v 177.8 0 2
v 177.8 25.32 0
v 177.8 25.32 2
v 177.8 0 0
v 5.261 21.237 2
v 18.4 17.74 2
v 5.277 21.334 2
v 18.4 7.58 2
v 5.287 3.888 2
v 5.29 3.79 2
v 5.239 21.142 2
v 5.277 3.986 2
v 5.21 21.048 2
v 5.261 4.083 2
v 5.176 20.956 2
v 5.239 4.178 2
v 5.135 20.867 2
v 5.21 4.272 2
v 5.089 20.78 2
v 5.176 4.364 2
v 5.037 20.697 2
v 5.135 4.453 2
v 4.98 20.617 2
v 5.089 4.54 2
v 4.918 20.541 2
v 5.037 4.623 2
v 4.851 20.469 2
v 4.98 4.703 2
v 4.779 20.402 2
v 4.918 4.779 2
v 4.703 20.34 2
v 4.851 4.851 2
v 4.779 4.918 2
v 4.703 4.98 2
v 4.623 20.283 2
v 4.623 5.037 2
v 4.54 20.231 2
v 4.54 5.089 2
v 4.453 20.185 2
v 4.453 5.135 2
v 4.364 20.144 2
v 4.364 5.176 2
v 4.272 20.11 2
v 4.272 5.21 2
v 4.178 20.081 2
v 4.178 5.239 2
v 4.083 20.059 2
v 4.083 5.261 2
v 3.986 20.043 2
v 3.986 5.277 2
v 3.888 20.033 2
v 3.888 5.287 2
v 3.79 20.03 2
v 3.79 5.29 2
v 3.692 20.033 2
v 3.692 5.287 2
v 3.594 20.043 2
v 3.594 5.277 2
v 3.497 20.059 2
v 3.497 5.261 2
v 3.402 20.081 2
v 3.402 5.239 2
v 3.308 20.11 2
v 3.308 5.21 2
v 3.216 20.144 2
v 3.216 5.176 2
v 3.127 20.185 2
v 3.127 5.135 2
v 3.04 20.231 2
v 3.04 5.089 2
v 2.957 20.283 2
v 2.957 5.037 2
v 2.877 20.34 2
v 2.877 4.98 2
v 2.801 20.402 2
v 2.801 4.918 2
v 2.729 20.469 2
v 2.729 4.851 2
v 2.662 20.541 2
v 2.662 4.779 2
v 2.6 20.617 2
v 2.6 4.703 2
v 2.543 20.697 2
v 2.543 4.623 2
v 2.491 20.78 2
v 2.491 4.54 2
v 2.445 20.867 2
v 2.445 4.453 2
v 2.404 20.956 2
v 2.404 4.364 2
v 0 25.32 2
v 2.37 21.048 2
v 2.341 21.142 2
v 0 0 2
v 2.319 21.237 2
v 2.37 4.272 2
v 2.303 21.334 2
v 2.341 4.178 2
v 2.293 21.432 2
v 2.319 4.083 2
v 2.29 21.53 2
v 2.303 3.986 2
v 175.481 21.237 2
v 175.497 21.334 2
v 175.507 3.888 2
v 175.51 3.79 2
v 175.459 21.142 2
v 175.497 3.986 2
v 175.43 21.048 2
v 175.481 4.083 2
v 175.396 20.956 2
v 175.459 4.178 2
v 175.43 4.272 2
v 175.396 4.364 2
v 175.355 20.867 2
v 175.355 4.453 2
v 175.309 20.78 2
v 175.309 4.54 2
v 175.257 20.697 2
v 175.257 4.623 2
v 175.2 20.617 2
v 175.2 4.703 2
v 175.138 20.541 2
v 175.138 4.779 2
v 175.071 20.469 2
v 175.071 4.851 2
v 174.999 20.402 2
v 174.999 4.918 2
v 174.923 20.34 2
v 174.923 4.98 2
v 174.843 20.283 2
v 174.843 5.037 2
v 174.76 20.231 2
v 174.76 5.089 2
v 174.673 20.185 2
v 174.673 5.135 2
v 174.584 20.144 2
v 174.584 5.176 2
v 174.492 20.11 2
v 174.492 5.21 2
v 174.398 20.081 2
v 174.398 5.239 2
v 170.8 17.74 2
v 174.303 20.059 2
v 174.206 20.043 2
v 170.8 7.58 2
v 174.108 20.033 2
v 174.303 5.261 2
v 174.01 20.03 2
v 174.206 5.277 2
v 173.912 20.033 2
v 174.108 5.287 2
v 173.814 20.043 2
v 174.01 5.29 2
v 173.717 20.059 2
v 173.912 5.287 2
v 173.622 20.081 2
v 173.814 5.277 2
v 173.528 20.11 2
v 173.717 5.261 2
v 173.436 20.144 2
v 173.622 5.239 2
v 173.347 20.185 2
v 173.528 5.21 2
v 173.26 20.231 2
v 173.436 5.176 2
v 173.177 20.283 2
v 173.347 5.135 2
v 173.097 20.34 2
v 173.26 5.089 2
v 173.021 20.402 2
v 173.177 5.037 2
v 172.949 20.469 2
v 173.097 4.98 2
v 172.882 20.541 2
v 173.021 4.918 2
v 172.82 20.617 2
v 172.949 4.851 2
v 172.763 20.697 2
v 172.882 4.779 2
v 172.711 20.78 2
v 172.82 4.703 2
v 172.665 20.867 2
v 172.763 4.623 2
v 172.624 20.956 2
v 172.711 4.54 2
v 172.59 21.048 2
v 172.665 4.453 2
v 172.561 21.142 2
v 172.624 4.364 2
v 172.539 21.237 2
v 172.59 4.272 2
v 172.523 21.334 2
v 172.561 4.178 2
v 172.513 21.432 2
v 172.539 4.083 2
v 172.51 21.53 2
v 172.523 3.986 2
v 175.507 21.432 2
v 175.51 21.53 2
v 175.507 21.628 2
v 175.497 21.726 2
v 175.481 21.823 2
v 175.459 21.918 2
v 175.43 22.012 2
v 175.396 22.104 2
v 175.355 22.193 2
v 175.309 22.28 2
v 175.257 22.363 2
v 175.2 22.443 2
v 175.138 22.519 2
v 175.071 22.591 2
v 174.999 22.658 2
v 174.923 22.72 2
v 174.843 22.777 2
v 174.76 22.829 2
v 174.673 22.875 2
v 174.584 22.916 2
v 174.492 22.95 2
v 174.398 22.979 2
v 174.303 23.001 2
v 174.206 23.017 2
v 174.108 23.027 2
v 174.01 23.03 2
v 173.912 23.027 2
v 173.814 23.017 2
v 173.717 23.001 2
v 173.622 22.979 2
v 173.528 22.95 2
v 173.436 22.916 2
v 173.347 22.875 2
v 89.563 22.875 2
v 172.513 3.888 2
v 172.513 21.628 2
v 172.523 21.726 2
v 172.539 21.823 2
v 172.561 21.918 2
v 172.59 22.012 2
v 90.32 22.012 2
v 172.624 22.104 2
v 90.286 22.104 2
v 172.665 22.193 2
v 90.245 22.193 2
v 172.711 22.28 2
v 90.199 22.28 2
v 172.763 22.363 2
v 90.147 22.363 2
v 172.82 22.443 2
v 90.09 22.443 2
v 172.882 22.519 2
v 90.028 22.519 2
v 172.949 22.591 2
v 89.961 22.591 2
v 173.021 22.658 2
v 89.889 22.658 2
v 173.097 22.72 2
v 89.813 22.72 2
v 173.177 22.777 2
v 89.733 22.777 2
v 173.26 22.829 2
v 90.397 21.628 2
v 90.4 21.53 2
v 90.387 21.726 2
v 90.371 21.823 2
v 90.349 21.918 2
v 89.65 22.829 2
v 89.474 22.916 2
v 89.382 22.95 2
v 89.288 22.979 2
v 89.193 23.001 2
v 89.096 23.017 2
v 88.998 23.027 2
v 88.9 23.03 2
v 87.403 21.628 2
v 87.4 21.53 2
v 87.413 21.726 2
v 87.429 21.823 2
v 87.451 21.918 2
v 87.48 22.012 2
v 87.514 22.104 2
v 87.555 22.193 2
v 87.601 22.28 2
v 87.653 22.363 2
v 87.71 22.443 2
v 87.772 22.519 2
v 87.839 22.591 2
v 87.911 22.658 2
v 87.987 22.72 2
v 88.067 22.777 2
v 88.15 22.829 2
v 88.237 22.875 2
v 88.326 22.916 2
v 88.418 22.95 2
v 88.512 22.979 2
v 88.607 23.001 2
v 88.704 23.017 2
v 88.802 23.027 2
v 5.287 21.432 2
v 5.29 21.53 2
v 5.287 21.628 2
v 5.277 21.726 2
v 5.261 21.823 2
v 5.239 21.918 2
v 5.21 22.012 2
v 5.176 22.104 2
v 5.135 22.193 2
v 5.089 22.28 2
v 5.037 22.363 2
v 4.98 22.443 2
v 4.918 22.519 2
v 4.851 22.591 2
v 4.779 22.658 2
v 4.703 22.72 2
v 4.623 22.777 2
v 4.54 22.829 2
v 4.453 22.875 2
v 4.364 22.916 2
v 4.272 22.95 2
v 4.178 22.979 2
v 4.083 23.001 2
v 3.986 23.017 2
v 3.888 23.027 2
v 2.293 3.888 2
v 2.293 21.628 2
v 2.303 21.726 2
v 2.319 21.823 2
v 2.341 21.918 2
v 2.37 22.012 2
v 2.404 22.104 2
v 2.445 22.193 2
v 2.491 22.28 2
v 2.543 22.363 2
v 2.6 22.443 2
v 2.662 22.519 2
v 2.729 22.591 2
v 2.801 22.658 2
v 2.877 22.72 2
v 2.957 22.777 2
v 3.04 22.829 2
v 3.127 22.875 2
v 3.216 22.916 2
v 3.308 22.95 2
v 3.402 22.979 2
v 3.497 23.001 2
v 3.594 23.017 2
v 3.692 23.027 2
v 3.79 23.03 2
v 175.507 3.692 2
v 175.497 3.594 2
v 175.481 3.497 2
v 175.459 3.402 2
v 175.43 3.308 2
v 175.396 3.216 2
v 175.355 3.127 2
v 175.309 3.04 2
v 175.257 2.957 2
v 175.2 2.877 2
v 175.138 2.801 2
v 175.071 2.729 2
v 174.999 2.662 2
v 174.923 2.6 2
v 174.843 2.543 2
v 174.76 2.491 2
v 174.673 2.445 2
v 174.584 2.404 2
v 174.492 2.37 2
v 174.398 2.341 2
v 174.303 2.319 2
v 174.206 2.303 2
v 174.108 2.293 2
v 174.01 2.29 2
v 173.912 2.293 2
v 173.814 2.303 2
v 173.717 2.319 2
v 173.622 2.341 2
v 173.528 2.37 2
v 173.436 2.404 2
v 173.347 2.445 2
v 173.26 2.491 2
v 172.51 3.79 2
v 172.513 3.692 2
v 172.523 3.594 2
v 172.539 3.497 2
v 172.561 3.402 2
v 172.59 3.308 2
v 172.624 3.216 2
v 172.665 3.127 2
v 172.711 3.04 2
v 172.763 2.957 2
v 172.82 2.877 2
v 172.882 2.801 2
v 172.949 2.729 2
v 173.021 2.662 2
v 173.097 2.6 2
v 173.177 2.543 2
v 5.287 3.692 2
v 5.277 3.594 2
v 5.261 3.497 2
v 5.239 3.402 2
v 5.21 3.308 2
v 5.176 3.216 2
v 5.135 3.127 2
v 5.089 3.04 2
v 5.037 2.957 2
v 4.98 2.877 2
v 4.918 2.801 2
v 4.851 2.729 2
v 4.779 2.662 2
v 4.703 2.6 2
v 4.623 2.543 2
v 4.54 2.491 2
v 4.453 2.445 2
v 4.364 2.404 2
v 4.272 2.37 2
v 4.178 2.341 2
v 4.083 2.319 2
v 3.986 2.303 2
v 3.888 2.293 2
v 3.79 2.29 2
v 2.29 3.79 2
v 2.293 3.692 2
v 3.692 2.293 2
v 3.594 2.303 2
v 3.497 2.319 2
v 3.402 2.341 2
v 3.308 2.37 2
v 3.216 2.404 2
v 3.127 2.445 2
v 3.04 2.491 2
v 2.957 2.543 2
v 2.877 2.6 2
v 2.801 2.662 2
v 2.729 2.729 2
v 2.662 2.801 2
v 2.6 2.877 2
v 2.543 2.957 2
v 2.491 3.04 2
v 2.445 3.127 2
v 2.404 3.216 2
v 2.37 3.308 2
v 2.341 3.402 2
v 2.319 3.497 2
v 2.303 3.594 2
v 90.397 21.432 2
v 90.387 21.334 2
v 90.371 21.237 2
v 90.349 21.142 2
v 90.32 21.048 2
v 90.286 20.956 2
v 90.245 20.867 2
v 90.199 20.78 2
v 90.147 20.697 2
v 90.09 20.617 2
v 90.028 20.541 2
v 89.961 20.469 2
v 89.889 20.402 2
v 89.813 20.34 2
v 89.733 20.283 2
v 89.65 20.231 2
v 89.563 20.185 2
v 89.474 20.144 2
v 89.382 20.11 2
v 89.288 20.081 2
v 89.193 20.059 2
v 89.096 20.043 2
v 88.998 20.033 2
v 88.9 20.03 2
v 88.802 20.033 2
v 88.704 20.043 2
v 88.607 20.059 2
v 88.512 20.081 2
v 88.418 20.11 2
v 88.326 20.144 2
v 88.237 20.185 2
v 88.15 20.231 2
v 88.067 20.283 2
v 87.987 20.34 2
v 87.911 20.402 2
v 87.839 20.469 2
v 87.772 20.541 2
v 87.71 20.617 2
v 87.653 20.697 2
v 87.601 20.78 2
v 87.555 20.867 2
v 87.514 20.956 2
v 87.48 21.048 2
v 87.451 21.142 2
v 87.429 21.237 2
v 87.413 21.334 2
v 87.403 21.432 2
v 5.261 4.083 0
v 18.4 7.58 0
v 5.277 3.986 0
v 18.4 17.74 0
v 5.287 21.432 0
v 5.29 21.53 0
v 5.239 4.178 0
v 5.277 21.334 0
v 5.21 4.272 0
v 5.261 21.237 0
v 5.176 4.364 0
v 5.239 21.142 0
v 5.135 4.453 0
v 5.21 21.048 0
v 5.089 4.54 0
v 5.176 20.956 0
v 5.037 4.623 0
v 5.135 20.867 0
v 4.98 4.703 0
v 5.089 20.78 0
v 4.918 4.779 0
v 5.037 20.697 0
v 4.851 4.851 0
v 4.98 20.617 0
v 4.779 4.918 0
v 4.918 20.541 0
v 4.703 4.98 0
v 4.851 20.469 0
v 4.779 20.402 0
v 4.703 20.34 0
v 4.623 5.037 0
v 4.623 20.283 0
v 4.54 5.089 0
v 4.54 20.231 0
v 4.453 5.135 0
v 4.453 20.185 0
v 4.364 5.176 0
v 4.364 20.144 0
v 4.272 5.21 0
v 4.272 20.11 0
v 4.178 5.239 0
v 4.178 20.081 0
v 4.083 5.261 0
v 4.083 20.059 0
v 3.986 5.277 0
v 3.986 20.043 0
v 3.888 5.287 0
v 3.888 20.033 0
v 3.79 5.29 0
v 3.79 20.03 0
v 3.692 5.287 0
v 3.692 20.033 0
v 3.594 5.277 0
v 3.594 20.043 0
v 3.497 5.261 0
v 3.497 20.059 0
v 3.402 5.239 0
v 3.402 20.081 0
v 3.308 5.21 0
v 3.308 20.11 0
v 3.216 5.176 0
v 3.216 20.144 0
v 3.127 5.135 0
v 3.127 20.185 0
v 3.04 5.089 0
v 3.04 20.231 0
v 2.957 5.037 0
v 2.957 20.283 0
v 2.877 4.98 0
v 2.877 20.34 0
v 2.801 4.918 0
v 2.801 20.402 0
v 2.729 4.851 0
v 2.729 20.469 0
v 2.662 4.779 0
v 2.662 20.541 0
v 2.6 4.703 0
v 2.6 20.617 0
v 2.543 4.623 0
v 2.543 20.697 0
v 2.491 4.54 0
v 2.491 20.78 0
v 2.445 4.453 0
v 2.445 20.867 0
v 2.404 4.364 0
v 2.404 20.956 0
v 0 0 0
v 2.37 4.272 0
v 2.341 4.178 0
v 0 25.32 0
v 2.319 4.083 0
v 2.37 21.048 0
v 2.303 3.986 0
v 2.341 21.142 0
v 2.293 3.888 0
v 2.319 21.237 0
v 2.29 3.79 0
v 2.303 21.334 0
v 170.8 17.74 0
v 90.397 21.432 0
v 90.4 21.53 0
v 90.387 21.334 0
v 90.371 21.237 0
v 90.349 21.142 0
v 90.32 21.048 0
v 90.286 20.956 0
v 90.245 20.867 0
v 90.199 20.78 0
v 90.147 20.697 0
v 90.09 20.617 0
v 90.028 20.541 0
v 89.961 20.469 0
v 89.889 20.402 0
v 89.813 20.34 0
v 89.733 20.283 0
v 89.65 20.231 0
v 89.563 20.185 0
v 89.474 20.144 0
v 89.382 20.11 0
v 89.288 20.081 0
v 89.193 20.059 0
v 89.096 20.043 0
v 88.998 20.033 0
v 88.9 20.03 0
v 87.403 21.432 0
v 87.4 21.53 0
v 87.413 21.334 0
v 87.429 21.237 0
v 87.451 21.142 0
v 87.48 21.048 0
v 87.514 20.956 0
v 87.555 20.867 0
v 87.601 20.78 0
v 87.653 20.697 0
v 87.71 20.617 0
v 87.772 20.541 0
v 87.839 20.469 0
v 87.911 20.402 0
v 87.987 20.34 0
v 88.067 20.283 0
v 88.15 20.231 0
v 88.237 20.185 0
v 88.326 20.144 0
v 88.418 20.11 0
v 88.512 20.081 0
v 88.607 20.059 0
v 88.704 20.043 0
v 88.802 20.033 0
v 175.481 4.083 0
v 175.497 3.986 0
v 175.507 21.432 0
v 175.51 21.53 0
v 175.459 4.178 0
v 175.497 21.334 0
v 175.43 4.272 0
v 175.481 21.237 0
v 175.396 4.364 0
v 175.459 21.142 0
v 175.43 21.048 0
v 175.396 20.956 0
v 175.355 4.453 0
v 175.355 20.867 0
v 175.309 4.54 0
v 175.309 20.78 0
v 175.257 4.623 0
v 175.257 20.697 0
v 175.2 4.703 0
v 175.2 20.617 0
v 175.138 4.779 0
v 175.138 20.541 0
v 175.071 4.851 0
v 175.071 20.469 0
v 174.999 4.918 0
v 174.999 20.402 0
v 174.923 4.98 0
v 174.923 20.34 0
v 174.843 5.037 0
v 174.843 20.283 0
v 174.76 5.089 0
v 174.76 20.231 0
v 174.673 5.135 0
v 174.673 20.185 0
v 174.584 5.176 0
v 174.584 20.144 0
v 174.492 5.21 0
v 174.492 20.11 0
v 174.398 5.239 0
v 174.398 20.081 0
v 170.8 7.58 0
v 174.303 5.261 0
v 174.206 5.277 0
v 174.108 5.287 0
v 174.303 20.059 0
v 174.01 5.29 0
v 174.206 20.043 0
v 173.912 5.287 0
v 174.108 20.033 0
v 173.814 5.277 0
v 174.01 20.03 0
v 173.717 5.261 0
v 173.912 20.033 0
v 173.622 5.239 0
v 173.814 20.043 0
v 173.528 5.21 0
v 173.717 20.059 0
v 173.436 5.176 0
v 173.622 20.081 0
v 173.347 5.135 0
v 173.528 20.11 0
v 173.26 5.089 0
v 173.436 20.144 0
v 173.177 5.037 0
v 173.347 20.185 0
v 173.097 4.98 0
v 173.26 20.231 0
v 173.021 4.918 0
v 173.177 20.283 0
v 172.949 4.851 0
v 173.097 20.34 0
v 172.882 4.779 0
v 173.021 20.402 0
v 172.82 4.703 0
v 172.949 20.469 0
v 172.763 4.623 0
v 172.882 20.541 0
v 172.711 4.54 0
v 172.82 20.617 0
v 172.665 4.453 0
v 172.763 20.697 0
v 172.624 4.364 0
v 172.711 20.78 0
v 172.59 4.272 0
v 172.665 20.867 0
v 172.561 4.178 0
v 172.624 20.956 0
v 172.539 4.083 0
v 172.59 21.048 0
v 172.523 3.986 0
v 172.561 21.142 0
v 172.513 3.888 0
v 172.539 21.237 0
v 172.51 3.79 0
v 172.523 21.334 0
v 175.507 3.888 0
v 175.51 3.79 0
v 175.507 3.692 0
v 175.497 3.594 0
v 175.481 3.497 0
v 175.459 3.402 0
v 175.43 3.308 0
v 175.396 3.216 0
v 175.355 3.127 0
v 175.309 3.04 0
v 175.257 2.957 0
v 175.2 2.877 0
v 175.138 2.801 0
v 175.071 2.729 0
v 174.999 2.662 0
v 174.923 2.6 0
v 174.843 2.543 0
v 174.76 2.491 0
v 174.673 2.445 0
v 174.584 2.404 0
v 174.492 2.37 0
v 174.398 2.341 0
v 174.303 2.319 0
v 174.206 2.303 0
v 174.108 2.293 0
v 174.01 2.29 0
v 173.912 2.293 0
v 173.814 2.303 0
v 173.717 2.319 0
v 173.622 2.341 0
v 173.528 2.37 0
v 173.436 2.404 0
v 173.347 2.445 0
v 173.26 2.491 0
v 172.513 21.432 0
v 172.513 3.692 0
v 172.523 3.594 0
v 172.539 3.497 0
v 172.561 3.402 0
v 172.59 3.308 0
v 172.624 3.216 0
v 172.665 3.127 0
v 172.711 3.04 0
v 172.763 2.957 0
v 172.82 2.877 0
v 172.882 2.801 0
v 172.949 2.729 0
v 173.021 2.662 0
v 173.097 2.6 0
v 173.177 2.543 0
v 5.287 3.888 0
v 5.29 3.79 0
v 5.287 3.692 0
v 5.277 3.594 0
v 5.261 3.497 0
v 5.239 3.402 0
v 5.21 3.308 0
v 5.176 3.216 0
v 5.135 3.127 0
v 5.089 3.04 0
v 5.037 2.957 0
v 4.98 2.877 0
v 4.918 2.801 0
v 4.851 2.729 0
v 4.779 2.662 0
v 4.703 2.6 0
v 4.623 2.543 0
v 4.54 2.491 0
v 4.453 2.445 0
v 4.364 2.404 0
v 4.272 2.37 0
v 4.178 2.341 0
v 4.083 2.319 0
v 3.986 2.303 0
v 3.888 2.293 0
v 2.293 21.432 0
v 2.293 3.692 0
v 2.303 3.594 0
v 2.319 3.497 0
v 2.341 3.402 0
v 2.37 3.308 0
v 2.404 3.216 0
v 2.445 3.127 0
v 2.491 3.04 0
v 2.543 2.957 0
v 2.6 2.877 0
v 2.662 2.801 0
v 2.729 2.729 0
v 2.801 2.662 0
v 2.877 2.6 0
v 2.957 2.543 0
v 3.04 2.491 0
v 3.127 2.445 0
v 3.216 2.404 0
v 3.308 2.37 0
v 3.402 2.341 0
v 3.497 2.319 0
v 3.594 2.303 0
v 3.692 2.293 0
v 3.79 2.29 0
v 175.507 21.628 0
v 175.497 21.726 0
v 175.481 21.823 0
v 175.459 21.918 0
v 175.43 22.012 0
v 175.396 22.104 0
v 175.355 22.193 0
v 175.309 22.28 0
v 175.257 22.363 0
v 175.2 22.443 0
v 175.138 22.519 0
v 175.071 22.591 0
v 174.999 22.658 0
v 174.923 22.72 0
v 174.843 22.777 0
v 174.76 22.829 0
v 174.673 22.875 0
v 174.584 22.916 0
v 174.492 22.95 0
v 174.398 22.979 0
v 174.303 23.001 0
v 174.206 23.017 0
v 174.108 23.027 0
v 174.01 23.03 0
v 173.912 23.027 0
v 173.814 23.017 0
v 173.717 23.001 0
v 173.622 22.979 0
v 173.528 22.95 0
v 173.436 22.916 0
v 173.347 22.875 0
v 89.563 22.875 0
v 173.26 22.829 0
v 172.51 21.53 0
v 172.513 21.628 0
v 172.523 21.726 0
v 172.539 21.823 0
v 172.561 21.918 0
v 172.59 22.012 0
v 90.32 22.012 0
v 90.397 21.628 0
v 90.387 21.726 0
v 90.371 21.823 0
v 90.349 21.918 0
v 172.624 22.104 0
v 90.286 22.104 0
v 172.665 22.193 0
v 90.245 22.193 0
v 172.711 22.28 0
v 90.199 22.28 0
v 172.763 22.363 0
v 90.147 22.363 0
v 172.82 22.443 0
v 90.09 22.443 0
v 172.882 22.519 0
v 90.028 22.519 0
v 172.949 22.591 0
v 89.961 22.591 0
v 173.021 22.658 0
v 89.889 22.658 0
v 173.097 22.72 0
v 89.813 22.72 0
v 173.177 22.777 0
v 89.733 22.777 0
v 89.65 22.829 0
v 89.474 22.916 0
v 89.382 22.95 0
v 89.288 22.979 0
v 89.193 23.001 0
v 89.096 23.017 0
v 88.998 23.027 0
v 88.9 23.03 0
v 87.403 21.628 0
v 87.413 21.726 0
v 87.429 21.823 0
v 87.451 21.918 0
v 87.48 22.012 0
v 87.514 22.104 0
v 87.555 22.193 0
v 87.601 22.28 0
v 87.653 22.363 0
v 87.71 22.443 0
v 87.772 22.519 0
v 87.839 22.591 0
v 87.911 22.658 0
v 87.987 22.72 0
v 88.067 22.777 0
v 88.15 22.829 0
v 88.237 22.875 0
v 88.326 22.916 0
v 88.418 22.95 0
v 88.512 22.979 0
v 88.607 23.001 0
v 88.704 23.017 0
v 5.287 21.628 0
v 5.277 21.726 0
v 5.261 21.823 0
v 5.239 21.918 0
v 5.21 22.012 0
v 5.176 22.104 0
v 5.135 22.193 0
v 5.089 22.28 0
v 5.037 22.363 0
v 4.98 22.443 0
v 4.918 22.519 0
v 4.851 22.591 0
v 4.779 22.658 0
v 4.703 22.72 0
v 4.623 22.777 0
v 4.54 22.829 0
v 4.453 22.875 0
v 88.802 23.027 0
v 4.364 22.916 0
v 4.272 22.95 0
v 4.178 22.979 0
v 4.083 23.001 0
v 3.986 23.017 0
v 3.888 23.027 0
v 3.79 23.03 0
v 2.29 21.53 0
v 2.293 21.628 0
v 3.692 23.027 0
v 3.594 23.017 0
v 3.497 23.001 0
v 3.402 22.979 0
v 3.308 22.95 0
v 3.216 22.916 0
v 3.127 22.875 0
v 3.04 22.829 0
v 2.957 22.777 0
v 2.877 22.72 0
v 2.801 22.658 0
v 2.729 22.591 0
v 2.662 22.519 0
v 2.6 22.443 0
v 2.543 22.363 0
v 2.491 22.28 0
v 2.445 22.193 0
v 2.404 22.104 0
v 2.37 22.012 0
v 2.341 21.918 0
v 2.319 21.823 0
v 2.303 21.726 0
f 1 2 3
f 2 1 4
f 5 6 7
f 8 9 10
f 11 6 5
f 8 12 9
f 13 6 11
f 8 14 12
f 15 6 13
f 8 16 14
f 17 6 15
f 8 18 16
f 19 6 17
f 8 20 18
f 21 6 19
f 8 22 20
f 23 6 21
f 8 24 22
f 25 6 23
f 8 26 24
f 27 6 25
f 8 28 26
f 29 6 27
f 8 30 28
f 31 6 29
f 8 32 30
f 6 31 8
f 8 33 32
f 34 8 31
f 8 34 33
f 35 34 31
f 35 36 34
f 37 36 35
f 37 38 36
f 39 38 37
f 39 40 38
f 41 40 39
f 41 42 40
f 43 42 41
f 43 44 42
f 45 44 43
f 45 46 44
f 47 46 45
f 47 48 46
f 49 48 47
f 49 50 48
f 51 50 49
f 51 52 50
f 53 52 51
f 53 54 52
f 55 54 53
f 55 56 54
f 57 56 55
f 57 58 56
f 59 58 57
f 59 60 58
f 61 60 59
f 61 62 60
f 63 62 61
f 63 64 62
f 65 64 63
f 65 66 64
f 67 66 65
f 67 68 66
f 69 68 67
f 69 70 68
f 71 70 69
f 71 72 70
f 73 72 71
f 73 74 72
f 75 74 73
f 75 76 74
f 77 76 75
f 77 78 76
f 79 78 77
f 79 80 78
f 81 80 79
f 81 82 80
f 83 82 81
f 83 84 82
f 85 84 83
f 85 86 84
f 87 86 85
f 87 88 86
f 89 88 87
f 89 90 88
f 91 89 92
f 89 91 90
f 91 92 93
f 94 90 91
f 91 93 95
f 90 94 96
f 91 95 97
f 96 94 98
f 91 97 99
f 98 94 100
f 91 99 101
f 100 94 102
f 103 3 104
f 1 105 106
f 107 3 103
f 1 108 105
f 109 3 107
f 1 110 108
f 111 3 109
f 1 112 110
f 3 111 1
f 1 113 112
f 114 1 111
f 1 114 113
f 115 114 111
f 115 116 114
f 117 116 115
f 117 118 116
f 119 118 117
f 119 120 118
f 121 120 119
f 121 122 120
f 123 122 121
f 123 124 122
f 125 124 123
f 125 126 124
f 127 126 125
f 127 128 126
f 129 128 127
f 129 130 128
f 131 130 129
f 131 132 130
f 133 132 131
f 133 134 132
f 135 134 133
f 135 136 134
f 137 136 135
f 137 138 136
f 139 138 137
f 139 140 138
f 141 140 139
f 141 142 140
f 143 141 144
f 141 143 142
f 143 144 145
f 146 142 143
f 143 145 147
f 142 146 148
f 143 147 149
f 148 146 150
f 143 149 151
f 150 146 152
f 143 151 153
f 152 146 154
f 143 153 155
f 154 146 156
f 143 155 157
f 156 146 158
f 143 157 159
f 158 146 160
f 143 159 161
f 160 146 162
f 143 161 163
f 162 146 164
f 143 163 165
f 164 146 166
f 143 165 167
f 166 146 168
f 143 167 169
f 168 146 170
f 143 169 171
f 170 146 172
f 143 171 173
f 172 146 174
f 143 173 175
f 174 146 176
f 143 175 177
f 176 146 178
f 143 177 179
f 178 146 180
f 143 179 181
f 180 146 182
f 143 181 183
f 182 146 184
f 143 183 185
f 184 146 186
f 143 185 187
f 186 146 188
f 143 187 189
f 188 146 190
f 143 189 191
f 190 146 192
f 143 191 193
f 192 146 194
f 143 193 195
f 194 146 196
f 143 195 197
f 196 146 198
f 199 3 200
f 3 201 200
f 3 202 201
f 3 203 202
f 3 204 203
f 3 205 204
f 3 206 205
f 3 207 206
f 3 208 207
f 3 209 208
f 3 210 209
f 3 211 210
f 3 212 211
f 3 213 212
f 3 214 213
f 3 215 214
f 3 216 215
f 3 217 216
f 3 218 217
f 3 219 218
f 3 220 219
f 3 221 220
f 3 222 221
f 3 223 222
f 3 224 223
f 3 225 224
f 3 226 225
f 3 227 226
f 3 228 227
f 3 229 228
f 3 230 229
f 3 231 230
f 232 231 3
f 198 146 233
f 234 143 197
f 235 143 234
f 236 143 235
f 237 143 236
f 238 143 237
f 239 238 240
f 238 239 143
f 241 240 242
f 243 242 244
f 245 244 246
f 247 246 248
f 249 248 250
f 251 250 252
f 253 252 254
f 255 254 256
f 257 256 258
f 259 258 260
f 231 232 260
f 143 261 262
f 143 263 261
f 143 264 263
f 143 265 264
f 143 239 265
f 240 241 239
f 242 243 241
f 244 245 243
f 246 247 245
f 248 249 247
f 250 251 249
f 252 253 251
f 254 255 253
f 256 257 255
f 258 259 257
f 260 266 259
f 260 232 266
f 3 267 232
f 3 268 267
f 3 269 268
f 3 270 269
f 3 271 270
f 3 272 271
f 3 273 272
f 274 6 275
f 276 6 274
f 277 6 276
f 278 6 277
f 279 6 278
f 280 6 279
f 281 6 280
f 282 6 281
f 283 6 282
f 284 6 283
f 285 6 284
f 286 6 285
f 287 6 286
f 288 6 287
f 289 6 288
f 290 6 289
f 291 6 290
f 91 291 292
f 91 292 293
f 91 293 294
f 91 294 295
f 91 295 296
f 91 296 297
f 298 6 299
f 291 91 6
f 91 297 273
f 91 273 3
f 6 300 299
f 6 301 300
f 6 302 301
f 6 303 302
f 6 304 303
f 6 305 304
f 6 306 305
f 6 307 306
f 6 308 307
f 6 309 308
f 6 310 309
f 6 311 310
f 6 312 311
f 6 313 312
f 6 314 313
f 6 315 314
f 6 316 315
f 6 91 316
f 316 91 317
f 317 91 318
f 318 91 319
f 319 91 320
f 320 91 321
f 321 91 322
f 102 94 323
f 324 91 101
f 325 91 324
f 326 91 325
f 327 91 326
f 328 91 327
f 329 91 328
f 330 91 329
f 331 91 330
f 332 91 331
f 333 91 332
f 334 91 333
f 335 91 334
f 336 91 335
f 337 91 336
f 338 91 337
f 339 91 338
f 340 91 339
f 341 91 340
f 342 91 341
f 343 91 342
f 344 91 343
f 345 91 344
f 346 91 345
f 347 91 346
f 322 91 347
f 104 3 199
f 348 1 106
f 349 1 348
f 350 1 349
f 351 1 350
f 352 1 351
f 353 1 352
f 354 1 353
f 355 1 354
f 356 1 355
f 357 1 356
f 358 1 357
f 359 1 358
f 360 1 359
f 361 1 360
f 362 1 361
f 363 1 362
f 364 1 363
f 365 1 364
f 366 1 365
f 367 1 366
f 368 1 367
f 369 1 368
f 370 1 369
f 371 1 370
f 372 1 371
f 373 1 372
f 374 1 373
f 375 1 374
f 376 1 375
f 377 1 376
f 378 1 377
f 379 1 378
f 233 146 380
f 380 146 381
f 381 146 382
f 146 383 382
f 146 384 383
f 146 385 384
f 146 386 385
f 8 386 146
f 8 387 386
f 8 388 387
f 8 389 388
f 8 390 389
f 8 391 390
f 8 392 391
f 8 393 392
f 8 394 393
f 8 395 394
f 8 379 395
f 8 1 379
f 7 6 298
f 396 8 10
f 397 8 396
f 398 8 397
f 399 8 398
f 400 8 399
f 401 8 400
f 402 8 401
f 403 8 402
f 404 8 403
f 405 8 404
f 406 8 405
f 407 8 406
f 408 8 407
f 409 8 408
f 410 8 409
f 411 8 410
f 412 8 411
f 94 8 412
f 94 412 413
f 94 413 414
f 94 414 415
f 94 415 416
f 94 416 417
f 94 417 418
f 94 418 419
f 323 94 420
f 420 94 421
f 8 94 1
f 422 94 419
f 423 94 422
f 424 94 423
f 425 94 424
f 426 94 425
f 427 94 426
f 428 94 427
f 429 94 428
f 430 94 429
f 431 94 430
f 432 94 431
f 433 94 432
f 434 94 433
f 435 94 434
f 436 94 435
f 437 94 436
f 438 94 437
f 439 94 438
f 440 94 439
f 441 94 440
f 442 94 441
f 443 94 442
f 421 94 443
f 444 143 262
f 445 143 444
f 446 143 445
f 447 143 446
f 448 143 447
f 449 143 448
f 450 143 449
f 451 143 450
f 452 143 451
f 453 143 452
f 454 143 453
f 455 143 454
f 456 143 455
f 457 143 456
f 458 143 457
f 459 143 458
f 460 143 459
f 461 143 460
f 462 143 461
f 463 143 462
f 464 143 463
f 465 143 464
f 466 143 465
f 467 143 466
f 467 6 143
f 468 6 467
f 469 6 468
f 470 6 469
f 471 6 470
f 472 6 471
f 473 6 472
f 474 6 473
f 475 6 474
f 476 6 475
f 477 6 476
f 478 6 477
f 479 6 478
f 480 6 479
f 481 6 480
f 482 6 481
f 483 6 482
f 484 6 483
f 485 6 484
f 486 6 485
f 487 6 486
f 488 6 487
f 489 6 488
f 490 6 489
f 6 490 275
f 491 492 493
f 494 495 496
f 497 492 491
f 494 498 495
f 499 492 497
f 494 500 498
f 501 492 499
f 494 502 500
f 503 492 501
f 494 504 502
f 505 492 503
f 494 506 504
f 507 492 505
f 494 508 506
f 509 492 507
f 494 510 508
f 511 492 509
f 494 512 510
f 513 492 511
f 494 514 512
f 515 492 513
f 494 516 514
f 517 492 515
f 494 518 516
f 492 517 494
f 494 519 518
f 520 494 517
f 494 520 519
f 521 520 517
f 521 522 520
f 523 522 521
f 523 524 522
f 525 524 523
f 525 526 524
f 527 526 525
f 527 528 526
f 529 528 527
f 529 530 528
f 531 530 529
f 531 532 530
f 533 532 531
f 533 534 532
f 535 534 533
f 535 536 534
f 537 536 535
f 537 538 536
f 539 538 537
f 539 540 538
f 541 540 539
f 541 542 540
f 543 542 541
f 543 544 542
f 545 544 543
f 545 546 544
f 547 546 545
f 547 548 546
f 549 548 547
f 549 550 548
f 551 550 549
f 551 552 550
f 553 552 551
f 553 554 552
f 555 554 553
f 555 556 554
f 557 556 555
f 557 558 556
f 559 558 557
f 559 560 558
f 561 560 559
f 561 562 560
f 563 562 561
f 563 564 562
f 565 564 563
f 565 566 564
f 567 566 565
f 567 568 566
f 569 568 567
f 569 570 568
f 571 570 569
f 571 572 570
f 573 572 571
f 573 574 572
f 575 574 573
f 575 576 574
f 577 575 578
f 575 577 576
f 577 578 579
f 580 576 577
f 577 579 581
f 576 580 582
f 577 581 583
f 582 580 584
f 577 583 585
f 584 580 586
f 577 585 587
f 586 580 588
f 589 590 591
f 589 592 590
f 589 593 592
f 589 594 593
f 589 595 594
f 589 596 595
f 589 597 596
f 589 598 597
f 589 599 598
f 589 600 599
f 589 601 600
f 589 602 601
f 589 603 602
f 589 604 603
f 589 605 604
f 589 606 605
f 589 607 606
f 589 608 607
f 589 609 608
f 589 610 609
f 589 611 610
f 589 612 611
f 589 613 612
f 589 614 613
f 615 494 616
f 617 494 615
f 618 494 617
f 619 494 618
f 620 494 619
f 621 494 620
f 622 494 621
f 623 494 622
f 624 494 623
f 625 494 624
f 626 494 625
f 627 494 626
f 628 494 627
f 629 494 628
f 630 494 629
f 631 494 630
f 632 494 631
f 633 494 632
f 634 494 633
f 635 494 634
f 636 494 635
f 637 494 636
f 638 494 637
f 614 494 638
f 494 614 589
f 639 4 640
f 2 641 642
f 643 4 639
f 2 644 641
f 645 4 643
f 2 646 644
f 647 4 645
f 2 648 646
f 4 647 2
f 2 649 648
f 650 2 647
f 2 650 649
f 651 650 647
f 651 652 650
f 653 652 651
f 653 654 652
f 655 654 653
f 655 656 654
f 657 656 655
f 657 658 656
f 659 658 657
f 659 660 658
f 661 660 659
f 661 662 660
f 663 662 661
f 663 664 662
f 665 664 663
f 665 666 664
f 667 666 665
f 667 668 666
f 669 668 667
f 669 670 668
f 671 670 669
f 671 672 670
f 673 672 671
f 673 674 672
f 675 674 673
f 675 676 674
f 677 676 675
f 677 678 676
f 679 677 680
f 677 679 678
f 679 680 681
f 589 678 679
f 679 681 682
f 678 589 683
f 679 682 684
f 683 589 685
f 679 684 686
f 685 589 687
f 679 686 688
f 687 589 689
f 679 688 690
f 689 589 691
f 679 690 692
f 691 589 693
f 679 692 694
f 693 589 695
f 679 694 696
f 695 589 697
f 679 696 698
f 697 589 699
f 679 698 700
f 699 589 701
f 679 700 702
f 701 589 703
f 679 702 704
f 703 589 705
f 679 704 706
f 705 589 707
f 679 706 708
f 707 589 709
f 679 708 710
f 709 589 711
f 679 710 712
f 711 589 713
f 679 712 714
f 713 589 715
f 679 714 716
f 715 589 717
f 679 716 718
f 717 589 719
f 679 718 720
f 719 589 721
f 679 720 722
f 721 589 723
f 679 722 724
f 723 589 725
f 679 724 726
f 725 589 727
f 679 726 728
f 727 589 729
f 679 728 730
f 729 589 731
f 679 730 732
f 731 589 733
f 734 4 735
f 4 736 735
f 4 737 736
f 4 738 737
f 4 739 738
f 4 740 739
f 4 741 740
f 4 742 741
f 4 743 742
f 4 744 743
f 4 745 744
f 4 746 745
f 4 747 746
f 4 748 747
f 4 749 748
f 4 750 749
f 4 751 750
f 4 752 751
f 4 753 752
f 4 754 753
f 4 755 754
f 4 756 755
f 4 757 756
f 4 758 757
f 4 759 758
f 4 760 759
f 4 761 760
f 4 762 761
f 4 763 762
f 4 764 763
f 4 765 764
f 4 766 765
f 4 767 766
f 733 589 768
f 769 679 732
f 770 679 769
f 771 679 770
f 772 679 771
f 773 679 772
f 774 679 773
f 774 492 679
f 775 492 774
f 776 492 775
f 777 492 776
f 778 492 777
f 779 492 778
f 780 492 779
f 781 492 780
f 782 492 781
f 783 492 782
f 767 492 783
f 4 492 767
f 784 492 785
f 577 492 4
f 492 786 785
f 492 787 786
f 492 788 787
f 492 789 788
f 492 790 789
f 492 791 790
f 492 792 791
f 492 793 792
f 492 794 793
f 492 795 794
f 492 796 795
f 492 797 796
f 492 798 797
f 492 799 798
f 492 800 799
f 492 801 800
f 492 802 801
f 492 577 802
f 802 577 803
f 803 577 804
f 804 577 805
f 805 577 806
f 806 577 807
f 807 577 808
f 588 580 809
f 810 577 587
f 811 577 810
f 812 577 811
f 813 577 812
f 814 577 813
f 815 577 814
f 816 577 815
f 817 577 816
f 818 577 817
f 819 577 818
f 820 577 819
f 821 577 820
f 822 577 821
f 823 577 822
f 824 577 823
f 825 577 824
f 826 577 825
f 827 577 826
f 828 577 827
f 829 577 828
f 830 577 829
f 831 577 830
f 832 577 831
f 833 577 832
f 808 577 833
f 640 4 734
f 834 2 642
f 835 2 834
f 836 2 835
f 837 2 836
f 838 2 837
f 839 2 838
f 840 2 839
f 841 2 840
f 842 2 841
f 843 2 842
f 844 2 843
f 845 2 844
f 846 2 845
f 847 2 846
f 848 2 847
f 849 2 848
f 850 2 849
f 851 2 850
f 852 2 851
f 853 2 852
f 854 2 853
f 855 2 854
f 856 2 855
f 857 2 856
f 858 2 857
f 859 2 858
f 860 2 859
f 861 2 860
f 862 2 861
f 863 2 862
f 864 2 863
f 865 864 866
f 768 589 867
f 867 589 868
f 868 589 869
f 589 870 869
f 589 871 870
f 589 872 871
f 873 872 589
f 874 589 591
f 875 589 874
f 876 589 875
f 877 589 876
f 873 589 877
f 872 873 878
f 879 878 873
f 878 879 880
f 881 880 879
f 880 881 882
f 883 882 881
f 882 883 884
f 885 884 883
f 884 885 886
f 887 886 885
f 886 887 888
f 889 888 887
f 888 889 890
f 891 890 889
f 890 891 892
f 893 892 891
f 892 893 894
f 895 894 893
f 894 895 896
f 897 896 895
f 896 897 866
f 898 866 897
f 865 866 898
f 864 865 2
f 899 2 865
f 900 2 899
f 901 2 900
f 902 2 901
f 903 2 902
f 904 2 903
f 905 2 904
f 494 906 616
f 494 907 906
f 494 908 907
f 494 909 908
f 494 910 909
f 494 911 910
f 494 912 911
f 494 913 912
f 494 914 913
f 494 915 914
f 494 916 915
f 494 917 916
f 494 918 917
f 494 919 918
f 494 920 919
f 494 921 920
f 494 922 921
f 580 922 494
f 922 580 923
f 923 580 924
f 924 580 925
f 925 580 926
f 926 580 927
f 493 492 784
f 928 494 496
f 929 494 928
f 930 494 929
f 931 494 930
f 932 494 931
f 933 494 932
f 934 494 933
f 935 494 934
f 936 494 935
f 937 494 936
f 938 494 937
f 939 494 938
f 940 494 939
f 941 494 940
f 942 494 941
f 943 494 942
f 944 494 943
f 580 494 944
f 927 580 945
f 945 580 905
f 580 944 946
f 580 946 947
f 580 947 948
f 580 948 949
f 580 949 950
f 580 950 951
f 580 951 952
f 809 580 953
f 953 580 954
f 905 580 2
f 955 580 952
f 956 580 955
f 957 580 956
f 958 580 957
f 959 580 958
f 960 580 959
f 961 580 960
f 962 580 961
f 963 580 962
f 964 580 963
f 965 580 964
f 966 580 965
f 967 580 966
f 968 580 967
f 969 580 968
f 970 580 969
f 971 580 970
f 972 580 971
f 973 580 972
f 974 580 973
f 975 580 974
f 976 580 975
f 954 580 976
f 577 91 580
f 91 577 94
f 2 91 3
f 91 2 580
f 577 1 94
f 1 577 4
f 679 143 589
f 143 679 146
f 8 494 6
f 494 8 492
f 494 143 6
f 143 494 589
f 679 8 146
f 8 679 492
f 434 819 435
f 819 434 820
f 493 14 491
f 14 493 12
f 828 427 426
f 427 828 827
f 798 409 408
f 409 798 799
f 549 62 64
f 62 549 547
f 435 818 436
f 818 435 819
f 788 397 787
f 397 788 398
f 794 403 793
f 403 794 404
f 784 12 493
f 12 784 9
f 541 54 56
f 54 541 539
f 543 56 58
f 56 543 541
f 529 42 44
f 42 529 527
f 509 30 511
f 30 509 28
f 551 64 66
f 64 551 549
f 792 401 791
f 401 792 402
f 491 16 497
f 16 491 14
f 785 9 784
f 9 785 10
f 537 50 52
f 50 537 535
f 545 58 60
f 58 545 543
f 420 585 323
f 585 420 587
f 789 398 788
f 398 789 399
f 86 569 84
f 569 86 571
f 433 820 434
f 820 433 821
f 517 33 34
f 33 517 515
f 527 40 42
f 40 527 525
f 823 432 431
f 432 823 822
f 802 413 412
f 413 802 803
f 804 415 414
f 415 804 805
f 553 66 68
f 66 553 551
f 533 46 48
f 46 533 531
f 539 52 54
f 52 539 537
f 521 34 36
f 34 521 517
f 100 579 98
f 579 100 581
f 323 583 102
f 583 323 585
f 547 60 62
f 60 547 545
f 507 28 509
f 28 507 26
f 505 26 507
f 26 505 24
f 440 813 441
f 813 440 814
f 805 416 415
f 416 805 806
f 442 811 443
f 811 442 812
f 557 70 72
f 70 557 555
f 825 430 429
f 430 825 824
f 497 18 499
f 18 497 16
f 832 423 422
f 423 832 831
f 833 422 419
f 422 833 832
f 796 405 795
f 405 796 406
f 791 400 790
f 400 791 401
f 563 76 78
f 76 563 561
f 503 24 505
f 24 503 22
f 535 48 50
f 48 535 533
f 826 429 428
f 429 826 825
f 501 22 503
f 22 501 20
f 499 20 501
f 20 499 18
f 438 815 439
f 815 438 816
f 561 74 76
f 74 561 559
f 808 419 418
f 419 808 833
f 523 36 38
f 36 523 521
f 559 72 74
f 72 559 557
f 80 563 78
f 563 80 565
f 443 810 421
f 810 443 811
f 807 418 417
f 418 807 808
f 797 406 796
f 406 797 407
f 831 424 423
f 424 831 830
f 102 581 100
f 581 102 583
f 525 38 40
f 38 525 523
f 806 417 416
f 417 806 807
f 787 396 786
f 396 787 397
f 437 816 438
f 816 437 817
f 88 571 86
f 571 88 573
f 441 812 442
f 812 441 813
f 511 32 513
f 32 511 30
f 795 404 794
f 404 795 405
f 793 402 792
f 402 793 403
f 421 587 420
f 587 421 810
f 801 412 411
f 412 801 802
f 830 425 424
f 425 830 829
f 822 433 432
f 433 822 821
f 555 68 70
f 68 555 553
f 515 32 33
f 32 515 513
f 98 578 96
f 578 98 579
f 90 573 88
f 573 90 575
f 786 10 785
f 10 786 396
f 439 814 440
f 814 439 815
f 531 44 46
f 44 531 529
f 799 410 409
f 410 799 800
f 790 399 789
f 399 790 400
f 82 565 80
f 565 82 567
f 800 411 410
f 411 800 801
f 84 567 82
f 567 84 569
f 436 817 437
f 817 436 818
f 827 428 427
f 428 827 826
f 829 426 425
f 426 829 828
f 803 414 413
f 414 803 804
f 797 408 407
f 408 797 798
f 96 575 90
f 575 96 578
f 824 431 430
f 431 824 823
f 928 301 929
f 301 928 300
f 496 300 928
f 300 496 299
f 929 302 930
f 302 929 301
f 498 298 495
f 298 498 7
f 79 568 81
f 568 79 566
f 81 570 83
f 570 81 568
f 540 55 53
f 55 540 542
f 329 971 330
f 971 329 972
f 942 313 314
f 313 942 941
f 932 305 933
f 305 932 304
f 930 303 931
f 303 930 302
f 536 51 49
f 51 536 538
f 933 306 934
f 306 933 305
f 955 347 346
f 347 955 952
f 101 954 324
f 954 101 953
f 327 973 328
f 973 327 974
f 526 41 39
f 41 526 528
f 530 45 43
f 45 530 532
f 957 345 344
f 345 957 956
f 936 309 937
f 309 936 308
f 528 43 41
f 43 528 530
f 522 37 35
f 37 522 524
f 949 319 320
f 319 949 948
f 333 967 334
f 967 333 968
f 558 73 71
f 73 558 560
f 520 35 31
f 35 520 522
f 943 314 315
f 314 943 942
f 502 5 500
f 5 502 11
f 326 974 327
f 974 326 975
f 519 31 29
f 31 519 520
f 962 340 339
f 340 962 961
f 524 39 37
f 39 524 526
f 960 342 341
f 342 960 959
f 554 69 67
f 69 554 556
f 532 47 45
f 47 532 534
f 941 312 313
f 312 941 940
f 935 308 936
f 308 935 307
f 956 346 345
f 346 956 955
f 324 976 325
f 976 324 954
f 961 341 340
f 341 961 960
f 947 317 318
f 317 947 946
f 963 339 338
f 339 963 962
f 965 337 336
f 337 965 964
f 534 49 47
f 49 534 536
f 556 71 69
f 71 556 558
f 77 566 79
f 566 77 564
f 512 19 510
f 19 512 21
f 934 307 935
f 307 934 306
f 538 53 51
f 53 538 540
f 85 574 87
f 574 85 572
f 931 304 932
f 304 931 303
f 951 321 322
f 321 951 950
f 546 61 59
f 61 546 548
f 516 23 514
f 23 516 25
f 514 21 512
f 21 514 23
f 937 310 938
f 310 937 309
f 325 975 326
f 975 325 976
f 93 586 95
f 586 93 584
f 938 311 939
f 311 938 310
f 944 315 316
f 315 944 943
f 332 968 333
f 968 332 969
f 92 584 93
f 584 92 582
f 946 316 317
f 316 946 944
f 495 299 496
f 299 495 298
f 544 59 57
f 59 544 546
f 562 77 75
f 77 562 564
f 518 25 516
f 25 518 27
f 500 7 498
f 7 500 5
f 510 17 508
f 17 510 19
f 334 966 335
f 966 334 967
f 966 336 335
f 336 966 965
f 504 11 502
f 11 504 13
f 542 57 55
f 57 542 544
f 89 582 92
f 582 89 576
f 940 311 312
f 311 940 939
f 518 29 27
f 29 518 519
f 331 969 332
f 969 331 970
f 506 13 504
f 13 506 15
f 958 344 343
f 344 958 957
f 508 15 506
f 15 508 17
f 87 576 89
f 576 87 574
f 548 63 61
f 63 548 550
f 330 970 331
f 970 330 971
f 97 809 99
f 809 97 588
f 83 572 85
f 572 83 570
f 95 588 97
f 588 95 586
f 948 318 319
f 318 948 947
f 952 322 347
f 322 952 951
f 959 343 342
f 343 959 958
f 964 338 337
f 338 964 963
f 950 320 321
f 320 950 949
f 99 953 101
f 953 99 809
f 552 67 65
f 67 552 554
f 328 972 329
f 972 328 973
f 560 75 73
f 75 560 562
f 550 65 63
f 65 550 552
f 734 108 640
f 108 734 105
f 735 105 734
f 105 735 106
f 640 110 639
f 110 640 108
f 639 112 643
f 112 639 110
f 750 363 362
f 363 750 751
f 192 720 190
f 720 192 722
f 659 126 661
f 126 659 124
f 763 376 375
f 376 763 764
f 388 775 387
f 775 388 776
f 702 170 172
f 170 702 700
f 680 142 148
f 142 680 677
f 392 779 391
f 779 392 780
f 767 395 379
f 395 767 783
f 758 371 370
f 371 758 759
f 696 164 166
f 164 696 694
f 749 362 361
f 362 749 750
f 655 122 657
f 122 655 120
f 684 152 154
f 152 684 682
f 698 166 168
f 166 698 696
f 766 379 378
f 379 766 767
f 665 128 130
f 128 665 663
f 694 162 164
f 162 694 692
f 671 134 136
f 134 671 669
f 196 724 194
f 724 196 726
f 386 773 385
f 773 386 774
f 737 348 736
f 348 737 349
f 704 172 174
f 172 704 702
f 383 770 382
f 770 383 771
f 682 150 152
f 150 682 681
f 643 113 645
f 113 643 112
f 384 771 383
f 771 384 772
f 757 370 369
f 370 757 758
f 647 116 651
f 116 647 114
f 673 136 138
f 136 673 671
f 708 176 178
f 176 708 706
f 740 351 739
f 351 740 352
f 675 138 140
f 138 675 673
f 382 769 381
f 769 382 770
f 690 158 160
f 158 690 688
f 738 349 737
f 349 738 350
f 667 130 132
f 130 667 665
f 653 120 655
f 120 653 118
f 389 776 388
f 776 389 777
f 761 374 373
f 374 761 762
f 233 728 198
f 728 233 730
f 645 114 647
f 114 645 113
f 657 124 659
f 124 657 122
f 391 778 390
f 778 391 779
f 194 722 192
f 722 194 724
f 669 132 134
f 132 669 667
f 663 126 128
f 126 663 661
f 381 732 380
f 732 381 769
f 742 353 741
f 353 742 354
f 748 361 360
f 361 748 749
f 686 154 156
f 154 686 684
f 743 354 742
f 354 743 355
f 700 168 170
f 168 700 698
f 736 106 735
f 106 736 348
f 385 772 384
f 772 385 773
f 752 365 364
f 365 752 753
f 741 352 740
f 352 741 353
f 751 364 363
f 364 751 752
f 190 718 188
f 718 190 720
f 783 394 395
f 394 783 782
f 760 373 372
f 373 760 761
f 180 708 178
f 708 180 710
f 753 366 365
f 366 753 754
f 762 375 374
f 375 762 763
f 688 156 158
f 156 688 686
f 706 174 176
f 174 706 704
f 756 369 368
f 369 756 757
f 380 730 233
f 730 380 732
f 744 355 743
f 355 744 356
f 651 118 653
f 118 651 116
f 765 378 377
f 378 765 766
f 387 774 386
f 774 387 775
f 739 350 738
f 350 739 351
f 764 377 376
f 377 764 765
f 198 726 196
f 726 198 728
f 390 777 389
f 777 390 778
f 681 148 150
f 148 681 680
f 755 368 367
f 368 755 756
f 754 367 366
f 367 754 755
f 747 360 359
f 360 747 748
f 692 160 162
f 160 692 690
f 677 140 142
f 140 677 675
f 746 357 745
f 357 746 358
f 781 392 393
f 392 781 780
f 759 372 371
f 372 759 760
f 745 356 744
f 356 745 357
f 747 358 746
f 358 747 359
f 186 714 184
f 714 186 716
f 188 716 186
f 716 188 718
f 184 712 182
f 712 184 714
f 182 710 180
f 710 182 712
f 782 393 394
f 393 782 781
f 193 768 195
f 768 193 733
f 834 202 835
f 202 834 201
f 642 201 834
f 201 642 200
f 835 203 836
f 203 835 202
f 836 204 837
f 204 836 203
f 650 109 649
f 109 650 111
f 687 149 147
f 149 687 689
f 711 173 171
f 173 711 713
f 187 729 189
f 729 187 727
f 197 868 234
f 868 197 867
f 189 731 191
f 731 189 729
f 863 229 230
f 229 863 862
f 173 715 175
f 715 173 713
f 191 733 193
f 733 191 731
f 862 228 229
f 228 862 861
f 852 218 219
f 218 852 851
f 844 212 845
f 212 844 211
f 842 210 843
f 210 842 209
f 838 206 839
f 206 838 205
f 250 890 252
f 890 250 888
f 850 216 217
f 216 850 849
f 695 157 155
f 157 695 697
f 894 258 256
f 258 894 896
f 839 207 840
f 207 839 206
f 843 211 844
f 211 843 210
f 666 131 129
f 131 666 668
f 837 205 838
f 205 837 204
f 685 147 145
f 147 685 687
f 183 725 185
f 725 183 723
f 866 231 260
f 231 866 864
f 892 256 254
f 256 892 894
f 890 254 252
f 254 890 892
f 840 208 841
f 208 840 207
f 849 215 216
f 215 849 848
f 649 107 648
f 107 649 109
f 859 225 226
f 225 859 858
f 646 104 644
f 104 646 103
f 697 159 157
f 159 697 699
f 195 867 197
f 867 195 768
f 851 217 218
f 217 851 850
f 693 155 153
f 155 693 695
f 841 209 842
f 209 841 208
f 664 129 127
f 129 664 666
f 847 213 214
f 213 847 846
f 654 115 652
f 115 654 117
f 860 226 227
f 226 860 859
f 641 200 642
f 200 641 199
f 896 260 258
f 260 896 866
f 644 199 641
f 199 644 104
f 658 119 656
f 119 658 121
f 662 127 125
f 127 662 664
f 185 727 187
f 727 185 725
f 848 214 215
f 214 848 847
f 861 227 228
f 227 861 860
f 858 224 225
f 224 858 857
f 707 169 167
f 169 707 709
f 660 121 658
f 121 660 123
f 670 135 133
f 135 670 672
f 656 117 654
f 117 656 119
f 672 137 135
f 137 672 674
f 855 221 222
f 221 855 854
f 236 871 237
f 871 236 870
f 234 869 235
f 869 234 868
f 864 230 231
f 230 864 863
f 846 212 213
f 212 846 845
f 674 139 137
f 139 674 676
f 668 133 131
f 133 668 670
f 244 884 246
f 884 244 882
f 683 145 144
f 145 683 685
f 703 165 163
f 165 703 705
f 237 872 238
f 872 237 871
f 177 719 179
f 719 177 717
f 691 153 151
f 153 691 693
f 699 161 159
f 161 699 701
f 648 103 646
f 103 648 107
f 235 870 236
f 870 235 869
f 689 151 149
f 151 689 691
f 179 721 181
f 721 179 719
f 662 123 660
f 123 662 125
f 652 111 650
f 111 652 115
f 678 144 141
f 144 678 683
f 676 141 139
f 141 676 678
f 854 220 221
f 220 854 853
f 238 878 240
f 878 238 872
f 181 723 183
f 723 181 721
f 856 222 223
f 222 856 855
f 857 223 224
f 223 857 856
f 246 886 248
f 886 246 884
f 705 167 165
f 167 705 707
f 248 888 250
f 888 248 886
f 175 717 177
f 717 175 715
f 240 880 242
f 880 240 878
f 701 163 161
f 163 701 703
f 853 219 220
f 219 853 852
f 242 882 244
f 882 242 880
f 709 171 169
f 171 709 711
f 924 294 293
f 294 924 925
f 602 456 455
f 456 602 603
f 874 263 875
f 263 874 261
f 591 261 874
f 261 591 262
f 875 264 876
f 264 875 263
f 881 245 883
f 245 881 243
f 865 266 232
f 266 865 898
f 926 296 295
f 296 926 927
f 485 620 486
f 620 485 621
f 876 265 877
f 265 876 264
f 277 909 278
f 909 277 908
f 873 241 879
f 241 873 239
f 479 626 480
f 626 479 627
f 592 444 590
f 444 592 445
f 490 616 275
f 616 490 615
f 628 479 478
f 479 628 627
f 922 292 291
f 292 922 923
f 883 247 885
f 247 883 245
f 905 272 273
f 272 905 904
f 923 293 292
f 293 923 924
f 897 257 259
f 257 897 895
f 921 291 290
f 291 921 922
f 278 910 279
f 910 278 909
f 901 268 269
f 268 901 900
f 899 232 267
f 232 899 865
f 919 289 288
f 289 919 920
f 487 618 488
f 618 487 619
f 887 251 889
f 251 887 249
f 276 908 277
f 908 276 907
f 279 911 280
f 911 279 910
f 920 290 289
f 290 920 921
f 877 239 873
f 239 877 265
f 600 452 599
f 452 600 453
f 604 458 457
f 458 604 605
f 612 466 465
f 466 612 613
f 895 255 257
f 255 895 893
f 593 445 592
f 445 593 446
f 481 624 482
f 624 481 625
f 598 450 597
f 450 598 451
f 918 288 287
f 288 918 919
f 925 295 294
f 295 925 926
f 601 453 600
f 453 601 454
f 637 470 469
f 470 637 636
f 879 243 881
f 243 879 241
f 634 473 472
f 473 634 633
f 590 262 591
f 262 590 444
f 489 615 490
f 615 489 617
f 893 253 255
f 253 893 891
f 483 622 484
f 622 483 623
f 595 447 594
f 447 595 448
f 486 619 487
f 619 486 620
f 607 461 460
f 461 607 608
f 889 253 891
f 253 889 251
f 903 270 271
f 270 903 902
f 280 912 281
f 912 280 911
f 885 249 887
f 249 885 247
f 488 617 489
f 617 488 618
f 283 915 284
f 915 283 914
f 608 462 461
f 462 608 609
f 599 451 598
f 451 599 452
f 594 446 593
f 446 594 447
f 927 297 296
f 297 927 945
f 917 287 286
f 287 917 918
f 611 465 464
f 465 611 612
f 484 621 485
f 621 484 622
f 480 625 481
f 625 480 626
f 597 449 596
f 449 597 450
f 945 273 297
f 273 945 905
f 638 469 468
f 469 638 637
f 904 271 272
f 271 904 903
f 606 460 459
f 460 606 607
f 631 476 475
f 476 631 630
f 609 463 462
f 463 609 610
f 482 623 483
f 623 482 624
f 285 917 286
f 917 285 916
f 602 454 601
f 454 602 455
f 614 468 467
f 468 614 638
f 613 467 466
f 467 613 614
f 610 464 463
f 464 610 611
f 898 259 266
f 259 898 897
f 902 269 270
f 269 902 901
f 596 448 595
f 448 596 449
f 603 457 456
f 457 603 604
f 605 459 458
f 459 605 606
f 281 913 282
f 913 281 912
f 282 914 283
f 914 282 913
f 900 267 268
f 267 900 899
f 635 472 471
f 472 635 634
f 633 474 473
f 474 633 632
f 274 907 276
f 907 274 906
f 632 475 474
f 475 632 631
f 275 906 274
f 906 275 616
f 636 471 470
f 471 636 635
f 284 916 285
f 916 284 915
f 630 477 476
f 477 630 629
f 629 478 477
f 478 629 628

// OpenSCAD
$fn=96;
px = 7 * 25.4;
py = .8 * 25.4 +3 +2;
pz = 2;

ix = 6 * 25.4;
iy = 0.4 * 25.4;
iz = 2 + 2;  // adding 2 for offset

radius = 3/2;
offset = (py-iy)/4;

module hole(x,y) 
{
    translate([x,y,-1])
    {
        cylinder(4,radius,radius);
    };
};
module plate() {
    cube([px, py, pz]);
};

module innerCutout() {
    translate([px-7-ix,(py-iy)/2,-1])
    {
        cube([ix,iy,iz]);
    };
}

difference()
{
    plate();
    innerCutout();
    
    hole(offset,offset);
    hole(offset,py-offset);
    hole(px-offset,offset);
    hole(px-offset,py-offset); 
    hole(px/2,py-offset); 
};
